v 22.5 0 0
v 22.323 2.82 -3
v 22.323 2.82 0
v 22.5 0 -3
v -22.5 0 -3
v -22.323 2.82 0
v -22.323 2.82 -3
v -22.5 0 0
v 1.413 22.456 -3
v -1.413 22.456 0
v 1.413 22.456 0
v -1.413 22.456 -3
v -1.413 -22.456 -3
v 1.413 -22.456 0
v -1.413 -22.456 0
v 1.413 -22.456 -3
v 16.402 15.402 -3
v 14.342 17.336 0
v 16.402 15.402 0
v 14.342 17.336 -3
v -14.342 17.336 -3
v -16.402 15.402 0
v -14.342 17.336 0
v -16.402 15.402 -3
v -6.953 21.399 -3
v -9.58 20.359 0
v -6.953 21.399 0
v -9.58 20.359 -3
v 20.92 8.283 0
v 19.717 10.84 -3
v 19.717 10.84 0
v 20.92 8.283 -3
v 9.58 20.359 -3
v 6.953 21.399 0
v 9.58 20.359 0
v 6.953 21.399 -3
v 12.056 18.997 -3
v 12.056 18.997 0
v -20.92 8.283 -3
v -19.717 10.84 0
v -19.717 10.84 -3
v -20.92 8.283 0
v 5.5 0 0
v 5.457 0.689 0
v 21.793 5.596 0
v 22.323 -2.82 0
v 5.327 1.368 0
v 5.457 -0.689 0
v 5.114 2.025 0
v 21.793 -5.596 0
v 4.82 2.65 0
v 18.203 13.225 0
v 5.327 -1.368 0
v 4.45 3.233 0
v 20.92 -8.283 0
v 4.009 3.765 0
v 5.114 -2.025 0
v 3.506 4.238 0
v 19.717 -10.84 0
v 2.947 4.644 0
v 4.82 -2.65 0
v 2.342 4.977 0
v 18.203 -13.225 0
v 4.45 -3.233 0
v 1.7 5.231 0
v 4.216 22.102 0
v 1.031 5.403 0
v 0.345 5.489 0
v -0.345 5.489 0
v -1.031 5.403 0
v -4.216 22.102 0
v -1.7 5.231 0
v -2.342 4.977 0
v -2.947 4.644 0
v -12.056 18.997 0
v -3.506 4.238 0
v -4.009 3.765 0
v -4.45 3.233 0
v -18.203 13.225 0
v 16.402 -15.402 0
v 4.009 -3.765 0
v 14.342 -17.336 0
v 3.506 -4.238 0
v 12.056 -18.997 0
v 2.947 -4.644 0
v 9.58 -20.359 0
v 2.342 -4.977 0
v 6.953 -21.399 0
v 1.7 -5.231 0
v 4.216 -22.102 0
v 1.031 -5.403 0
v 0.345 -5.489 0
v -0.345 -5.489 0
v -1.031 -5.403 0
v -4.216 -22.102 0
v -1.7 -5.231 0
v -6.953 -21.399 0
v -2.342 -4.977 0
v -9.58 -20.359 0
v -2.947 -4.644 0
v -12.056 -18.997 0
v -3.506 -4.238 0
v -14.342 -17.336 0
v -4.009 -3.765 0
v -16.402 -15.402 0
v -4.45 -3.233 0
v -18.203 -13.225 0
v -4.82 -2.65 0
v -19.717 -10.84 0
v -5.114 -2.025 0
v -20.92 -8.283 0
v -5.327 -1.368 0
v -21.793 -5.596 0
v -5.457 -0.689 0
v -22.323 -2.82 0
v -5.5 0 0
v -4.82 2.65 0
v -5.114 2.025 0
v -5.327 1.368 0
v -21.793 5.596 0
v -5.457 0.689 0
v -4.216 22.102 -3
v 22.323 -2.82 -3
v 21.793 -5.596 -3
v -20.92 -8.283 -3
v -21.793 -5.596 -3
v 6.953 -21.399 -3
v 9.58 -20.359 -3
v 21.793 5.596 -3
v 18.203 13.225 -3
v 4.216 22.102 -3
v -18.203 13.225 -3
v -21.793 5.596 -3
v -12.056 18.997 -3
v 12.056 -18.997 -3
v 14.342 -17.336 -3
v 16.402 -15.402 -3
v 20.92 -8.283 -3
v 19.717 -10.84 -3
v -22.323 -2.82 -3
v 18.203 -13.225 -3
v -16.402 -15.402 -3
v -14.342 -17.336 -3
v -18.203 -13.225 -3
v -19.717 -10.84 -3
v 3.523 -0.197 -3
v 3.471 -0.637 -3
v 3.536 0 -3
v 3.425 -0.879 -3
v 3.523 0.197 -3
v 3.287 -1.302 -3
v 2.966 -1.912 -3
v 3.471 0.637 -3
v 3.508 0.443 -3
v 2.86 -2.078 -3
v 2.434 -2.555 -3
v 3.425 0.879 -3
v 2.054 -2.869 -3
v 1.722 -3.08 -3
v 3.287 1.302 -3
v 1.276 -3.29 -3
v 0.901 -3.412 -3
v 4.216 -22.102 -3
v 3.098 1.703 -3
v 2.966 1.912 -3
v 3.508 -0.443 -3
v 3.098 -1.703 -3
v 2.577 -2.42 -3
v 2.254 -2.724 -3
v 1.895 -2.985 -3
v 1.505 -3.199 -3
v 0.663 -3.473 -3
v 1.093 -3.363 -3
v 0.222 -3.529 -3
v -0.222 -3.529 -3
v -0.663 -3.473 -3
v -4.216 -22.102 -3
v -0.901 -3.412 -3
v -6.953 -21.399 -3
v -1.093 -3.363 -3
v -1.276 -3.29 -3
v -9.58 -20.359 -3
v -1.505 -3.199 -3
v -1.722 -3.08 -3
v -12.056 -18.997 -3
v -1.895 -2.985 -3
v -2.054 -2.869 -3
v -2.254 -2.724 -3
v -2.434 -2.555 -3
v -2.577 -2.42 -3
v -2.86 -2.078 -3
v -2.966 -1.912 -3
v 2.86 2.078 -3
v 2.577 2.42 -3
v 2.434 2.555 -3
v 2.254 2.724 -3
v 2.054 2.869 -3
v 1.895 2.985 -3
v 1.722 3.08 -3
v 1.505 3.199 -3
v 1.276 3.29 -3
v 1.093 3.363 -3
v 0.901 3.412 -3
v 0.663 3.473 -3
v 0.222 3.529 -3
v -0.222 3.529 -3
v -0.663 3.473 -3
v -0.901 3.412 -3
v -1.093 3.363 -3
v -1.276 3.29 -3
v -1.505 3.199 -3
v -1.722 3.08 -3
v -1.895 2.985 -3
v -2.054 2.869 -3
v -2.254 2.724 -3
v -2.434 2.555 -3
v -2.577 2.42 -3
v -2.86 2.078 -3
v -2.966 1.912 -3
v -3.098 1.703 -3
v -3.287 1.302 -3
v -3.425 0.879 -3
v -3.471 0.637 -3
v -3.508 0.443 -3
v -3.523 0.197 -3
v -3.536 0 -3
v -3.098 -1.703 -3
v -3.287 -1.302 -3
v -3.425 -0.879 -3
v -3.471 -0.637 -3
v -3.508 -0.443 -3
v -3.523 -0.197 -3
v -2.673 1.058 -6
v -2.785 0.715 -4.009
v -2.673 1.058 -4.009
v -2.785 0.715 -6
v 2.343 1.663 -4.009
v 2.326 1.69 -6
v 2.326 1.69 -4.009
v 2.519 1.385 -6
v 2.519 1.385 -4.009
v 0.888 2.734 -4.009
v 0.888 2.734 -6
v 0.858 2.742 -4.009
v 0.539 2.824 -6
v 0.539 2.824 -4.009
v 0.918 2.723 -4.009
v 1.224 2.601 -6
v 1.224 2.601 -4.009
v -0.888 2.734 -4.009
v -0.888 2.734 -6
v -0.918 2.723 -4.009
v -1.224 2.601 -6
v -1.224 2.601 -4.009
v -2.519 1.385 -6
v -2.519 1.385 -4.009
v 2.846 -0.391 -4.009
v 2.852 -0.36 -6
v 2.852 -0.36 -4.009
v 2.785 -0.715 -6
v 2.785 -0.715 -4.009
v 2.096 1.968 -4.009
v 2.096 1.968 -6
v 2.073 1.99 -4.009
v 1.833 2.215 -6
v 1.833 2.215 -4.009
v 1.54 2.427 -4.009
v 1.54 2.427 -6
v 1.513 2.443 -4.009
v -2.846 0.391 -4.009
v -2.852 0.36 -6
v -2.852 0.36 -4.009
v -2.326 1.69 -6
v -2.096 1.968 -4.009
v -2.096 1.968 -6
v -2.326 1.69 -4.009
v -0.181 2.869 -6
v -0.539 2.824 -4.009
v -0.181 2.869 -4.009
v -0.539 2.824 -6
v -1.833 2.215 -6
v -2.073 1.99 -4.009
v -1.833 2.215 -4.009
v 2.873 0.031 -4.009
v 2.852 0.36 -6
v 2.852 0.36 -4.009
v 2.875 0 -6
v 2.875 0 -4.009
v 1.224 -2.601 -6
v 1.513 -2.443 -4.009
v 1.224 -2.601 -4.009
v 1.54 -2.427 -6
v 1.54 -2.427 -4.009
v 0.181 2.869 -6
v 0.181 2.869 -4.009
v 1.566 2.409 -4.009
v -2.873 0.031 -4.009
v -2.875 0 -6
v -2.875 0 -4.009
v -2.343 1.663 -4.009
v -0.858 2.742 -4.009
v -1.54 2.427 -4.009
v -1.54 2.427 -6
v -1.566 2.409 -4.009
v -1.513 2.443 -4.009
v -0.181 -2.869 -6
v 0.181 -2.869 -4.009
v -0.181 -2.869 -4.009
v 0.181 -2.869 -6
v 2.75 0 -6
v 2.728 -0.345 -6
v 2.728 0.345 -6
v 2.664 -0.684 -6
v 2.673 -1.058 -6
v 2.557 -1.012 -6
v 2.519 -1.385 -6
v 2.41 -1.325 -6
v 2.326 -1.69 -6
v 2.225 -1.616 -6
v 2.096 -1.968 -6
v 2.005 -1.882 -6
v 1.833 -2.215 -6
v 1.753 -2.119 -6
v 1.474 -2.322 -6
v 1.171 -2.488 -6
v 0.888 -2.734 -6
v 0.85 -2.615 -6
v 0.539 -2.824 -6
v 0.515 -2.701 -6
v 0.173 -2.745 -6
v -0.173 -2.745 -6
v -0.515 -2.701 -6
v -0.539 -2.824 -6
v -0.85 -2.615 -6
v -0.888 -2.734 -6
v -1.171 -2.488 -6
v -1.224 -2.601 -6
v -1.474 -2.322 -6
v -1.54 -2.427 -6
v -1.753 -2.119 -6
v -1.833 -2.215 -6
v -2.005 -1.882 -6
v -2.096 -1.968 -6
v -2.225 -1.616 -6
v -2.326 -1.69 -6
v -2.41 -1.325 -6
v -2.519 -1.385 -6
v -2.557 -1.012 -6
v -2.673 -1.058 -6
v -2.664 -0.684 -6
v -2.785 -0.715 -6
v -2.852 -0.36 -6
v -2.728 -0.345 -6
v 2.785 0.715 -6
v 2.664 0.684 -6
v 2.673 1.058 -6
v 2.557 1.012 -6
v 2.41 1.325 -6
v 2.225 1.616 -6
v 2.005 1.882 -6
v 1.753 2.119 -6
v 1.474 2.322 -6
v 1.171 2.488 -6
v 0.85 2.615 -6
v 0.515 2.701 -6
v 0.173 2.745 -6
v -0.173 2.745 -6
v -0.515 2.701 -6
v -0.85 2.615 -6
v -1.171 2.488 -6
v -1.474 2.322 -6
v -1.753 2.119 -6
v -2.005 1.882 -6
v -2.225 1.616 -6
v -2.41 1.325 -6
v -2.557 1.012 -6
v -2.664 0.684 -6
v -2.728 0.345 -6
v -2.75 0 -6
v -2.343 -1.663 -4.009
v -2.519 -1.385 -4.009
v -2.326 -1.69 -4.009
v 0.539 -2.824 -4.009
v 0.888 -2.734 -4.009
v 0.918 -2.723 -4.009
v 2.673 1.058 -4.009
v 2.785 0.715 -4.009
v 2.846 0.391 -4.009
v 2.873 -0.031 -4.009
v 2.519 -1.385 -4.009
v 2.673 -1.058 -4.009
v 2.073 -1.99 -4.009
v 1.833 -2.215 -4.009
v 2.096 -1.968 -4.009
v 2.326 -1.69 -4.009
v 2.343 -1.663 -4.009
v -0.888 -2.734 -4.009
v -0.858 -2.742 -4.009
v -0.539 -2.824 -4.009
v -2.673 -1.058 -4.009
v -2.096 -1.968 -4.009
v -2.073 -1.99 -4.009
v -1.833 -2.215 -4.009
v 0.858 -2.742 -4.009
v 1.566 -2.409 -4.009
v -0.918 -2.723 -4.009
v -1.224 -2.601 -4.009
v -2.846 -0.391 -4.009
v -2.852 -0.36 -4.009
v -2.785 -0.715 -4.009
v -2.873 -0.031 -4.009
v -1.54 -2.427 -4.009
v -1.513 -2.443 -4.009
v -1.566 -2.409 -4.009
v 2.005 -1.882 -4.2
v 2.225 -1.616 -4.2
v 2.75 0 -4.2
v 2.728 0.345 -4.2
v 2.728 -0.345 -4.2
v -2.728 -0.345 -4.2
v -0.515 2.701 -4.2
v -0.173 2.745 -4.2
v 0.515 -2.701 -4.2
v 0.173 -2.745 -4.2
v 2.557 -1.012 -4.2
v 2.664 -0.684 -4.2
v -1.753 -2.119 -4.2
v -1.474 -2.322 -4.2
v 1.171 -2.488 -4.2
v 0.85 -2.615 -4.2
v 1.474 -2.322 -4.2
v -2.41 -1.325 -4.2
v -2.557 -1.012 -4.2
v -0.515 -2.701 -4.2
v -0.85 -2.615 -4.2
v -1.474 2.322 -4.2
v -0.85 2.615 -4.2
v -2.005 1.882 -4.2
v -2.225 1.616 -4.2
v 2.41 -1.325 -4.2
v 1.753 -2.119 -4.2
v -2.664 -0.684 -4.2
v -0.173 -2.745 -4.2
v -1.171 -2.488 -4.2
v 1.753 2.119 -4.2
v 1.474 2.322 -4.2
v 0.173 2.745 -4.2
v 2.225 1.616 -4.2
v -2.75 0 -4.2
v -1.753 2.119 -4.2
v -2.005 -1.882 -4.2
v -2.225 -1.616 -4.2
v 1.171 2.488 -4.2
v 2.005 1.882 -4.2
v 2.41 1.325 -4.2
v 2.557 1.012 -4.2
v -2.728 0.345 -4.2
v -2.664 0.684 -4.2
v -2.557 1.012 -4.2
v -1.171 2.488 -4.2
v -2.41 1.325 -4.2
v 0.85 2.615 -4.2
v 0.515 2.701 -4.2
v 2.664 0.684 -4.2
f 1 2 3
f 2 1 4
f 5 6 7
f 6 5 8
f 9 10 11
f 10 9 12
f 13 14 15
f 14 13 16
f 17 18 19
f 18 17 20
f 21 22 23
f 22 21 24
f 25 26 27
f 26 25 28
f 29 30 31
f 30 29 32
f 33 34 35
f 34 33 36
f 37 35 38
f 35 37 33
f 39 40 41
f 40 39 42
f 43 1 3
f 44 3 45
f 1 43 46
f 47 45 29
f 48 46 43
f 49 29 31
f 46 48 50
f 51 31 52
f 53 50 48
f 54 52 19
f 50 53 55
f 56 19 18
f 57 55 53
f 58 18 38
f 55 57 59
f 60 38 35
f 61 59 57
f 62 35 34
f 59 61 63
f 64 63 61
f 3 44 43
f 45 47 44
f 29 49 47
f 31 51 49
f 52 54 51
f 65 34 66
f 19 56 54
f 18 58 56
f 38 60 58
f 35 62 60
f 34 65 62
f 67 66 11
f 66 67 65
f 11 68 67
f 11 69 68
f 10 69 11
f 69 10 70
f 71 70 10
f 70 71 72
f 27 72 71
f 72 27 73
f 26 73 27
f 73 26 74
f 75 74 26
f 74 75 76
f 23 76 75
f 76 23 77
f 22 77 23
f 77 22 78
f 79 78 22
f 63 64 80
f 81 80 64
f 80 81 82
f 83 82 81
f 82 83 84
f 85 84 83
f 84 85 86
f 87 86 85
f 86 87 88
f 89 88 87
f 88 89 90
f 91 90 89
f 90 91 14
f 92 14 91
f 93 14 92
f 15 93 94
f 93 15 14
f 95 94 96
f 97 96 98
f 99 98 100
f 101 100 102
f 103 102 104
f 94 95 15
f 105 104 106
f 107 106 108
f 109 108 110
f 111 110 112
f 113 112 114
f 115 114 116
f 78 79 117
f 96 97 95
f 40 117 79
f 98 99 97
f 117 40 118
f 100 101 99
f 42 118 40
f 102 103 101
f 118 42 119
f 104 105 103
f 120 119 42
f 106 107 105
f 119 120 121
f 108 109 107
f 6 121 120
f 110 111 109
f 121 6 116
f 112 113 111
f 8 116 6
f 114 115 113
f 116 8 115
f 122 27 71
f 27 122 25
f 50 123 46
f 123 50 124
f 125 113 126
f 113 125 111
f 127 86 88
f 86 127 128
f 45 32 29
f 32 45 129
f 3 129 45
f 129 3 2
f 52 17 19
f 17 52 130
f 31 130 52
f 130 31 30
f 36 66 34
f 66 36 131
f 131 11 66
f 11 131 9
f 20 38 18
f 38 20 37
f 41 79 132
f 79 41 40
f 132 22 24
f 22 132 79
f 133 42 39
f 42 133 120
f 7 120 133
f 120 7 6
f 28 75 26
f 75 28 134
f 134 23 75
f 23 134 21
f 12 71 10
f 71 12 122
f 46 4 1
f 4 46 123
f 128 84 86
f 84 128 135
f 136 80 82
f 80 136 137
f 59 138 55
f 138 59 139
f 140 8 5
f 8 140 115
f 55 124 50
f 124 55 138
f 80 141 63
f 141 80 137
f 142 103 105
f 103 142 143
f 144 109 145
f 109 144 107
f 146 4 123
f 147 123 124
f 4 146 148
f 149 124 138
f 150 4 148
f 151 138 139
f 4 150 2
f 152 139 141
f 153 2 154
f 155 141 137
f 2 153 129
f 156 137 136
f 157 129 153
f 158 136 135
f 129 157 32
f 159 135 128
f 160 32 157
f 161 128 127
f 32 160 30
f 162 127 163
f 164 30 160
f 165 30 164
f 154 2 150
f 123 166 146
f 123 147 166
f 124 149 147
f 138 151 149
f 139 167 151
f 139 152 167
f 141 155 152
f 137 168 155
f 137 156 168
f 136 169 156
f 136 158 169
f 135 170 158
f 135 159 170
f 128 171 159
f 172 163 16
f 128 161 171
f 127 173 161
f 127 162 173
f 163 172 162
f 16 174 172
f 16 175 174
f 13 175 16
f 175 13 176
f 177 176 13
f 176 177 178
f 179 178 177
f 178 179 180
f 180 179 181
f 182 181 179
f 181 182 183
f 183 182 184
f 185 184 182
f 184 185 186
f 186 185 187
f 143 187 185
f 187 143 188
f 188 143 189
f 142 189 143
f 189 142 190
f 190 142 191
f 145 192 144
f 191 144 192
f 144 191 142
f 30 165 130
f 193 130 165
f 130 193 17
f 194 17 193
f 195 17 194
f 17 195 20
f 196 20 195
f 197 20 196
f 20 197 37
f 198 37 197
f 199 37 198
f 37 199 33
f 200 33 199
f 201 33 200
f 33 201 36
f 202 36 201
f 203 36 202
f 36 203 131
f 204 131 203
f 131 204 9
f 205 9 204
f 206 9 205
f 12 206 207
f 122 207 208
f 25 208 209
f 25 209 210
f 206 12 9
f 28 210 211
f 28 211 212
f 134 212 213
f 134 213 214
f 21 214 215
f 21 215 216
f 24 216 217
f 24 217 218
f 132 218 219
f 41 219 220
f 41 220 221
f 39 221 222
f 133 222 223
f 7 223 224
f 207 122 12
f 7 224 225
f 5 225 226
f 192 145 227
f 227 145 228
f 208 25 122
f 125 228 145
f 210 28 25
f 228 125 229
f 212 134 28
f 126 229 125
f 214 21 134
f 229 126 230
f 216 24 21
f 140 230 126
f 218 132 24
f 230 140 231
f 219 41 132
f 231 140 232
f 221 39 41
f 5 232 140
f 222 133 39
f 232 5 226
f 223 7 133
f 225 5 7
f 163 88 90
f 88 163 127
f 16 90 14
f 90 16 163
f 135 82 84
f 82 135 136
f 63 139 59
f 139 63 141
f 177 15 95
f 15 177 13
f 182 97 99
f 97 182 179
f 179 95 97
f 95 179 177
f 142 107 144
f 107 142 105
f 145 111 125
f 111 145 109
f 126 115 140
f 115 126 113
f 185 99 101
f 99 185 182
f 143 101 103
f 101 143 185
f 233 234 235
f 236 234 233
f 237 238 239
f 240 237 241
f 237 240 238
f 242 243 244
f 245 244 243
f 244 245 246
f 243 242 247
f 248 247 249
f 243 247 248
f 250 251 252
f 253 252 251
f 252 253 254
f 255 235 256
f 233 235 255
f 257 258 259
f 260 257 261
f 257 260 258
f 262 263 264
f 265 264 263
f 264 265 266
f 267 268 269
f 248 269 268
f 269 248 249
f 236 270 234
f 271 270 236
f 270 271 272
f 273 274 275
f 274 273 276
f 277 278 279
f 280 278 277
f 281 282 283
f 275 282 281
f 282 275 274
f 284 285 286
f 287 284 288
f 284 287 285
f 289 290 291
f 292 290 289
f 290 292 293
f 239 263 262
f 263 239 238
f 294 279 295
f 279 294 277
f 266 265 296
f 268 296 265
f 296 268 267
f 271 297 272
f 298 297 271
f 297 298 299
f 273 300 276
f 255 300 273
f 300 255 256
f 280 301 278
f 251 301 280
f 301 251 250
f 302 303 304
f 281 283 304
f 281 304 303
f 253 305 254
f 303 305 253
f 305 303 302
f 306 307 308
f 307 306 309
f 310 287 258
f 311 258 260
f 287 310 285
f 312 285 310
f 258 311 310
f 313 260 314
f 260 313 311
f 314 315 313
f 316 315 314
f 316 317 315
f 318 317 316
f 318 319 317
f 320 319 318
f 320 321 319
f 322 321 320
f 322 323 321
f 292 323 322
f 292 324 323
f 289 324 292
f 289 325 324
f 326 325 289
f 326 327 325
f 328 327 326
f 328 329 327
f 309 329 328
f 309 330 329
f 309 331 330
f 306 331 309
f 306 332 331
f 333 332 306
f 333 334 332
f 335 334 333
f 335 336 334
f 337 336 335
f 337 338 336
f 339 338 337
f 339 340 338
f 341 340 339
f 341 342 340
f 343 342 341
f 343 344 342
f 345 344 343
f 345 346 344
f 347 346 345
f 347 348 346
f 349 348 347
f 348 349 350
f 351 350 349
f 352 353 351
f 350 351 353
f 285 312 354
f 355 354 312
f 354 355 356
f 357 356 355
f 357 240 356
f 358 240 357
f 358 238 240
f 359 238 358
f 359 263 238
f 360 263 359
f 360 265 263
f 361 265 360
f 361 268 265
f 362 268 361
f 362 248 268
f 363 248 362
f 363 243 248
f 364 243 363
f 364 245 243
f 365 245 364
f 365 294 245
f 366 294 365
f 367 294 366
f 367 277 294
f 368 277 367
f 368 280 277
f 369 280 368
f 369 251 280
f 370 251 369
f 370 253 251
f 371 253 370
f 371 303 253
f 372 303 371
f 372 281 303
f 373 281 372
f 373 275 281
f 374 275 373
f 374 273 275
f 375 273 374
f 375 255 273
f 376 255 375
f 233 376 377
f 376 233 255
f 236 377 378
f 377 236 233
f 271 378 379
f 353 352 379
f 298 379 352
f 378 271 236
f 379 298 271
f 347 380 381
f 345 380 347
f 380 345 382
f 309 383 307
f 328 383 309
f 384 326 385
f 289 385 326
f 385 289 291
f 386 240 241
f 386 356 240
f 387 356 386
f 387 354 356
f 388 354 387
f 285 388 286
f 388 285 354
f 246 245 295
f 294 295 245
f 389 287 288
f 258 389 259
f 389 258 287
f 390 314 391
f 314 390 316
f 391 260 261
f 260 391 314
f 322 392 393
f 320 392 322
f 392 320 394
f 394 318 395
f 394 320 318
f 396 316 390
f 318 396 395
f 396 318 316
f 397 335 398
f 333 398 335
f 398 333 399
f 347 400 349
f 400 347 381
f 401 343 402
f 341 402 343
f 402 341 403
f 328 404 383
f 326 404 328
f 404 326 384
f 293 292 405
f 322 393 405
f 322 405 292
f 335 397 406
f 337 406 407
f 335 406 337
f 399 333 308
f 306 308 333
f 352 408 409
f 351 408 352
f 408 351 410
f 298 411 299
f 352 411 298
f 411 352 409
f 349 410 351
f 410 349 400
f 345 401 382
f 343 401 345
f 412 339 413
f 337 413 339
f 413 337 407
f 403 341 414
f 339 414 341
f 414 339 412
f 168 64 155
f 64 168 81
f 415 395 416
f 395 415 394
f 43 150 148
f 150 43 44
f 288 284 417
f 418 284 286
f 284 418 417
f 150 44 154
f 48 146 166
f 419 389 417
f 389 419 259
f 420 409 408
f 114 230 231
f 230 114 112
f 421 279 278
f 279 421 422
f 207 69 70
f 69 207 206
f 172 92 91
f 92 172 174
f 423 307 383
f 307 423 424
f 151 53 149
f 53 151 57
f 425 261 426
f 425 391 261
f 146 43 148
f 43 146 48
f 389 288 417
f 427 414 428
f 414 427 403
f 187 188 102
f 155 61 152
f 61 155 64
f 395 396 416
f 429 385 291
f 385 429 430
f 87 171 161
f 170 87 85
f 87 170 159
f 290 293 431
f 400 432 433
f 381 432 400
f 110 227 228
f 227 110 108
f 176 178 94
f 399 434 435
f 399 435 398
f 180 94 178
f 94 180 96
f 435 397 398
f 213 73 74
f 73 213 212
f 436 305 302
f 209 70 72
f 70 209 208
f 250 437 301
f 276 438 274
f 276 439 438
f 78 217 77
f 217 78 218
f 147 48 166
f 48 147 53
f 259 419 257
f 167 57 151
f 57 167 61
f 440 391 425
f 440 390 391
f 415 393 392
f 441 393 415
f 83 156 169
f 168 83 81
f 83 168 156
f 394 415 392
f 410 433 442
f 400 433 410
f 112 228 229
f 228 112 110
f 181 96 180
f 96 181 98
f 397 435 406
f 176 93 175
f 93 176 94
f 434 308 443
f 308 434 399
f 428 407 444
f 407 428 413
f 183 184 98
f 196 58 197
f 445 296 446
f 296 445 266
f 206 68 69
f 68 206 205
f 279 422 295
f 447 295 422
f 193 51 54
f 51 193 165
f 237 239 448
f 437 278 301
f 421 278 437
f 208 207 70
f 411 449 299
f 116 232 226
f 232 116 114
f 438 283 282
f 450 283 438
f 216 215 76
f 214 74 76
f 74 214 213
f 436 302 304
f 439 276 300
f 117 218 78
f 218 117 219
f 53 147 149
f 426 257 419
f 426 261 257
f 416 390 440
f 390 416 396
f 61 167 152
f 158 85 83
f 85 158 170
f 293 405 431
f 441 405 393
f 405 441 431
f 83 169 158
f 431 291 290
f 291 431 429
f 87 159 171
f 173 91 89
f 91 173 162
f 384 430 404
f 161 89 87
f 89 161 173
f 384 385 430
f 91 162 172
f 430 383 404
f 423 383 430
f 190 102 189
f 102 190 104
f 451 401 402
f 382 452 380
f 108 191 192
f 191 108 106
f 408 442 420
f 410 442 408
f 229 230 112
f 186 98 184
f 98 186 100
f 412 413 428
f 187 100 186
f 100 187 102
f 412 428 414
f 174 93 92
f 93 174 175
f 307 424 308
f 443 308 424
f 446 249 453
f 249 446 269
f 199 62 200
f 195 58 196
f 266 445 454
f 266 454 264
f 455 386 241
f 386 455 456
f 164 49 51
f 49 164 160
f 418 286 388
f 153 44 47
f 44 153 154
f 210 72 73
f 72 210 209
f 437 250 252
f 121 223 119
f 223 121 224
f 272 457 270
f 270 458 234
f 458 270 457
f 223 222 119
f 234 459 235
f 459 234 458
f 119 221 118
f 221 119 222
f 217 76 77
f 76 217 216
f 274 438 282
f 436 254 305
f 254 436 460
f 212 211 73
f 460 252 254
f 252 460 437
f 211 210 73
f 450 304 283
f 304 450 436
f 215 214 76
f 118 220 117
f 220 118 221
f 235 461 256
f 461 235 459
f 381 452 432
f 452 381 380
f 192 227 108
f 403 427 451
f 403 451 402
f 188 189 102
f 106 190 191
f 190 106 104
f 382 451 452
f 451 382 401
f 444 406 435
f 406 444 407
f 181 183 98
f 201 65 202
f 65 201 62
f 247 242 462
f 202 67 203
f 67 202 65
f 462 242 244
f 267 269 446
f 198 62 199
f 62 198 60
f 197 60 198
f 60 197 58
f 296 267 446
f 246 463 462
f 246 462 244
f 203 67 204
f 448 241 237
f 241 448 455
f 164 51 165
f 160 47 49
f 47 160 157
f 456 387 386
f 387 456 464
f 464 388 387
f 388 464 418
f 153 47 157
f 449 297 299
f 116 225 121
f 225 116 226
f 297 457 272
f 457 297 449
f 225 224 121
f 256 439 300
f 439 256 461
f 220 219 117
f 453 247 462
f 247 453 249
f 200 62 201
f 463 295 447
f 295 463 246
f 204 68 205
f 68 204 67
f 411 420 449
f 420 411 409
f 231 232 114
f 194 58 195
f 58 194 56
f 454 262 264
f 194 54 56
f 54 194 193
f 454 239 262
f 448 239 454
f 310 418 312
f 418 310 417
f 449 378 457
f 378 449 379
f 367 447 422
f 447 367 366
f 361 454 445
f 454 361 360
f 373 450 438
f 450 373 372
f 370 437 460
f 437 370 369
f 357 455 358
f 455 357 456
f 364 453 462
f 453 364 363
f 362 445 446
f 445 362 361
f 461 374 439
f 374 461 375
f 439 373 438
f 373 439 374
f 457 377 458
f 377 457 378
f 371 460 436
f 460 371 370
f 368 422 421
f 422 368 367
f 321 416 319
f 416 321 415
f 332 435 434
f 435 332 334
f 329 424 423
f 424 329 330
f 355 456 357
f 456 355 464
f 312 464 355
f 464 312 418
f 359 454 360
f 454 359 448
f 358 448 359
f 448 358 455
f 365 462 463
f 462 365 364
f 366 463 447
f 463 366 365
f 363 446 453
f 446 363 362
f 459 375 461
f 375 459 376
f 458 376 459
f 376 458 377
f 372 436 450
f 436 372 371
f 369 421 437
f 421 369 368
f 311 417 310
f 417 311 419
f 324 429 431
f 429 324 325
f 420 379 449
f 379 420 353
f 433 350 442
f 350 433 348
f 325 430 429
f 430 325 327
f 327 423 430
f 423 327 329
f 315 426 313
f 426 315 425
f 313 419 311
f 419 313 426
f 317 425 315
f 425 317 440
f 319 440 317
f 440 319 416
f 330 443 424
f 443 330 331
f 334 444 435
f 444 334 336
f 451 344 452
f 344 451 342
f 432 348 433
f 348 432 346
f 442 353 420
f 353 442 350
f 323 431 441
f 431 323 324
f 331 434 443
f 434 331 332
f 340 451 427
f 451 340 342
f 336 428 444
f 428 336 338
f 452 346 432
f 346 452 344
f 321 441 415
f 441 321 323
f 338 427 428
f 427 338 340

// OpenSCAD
$fn = 50;


difference() {
	union() {
		translate(v = [0, 0, -3.0000000000]) {
			cylinder(h = 3, r = 22.5000000000);
		}
		translate(v = [0, 0, -6.0000000000]) {
			cylinder(h = 6, r = 2.8750000000);
		}
	}
	union() {
		translate(v = [0, 0, 0]) {
			rotate(a = [0, 0, 0]) {
				difference() {
					union() {
						translate(v = [0, 0, -6.0000000000]) {
							cylinder(h = 6, r = 2.2500000000);
						}
						translate(v = [0, 0, -4.2000000000]) {
							cylinder(h = 4.2000000000, r1 = 2.7500000000, r2 = 5.5000000000);
						}
						translate(v = [0, 0, -6.0000000000]) {
							cylinder(h = 6, r = 2.7500000000);
						}
						translate(v = [0, 0, -6.0000000000]) {
							cylinder(h = 6, r = 2.2500000000);
						}
					}
					union();
				}
			}
		}
	}
}
